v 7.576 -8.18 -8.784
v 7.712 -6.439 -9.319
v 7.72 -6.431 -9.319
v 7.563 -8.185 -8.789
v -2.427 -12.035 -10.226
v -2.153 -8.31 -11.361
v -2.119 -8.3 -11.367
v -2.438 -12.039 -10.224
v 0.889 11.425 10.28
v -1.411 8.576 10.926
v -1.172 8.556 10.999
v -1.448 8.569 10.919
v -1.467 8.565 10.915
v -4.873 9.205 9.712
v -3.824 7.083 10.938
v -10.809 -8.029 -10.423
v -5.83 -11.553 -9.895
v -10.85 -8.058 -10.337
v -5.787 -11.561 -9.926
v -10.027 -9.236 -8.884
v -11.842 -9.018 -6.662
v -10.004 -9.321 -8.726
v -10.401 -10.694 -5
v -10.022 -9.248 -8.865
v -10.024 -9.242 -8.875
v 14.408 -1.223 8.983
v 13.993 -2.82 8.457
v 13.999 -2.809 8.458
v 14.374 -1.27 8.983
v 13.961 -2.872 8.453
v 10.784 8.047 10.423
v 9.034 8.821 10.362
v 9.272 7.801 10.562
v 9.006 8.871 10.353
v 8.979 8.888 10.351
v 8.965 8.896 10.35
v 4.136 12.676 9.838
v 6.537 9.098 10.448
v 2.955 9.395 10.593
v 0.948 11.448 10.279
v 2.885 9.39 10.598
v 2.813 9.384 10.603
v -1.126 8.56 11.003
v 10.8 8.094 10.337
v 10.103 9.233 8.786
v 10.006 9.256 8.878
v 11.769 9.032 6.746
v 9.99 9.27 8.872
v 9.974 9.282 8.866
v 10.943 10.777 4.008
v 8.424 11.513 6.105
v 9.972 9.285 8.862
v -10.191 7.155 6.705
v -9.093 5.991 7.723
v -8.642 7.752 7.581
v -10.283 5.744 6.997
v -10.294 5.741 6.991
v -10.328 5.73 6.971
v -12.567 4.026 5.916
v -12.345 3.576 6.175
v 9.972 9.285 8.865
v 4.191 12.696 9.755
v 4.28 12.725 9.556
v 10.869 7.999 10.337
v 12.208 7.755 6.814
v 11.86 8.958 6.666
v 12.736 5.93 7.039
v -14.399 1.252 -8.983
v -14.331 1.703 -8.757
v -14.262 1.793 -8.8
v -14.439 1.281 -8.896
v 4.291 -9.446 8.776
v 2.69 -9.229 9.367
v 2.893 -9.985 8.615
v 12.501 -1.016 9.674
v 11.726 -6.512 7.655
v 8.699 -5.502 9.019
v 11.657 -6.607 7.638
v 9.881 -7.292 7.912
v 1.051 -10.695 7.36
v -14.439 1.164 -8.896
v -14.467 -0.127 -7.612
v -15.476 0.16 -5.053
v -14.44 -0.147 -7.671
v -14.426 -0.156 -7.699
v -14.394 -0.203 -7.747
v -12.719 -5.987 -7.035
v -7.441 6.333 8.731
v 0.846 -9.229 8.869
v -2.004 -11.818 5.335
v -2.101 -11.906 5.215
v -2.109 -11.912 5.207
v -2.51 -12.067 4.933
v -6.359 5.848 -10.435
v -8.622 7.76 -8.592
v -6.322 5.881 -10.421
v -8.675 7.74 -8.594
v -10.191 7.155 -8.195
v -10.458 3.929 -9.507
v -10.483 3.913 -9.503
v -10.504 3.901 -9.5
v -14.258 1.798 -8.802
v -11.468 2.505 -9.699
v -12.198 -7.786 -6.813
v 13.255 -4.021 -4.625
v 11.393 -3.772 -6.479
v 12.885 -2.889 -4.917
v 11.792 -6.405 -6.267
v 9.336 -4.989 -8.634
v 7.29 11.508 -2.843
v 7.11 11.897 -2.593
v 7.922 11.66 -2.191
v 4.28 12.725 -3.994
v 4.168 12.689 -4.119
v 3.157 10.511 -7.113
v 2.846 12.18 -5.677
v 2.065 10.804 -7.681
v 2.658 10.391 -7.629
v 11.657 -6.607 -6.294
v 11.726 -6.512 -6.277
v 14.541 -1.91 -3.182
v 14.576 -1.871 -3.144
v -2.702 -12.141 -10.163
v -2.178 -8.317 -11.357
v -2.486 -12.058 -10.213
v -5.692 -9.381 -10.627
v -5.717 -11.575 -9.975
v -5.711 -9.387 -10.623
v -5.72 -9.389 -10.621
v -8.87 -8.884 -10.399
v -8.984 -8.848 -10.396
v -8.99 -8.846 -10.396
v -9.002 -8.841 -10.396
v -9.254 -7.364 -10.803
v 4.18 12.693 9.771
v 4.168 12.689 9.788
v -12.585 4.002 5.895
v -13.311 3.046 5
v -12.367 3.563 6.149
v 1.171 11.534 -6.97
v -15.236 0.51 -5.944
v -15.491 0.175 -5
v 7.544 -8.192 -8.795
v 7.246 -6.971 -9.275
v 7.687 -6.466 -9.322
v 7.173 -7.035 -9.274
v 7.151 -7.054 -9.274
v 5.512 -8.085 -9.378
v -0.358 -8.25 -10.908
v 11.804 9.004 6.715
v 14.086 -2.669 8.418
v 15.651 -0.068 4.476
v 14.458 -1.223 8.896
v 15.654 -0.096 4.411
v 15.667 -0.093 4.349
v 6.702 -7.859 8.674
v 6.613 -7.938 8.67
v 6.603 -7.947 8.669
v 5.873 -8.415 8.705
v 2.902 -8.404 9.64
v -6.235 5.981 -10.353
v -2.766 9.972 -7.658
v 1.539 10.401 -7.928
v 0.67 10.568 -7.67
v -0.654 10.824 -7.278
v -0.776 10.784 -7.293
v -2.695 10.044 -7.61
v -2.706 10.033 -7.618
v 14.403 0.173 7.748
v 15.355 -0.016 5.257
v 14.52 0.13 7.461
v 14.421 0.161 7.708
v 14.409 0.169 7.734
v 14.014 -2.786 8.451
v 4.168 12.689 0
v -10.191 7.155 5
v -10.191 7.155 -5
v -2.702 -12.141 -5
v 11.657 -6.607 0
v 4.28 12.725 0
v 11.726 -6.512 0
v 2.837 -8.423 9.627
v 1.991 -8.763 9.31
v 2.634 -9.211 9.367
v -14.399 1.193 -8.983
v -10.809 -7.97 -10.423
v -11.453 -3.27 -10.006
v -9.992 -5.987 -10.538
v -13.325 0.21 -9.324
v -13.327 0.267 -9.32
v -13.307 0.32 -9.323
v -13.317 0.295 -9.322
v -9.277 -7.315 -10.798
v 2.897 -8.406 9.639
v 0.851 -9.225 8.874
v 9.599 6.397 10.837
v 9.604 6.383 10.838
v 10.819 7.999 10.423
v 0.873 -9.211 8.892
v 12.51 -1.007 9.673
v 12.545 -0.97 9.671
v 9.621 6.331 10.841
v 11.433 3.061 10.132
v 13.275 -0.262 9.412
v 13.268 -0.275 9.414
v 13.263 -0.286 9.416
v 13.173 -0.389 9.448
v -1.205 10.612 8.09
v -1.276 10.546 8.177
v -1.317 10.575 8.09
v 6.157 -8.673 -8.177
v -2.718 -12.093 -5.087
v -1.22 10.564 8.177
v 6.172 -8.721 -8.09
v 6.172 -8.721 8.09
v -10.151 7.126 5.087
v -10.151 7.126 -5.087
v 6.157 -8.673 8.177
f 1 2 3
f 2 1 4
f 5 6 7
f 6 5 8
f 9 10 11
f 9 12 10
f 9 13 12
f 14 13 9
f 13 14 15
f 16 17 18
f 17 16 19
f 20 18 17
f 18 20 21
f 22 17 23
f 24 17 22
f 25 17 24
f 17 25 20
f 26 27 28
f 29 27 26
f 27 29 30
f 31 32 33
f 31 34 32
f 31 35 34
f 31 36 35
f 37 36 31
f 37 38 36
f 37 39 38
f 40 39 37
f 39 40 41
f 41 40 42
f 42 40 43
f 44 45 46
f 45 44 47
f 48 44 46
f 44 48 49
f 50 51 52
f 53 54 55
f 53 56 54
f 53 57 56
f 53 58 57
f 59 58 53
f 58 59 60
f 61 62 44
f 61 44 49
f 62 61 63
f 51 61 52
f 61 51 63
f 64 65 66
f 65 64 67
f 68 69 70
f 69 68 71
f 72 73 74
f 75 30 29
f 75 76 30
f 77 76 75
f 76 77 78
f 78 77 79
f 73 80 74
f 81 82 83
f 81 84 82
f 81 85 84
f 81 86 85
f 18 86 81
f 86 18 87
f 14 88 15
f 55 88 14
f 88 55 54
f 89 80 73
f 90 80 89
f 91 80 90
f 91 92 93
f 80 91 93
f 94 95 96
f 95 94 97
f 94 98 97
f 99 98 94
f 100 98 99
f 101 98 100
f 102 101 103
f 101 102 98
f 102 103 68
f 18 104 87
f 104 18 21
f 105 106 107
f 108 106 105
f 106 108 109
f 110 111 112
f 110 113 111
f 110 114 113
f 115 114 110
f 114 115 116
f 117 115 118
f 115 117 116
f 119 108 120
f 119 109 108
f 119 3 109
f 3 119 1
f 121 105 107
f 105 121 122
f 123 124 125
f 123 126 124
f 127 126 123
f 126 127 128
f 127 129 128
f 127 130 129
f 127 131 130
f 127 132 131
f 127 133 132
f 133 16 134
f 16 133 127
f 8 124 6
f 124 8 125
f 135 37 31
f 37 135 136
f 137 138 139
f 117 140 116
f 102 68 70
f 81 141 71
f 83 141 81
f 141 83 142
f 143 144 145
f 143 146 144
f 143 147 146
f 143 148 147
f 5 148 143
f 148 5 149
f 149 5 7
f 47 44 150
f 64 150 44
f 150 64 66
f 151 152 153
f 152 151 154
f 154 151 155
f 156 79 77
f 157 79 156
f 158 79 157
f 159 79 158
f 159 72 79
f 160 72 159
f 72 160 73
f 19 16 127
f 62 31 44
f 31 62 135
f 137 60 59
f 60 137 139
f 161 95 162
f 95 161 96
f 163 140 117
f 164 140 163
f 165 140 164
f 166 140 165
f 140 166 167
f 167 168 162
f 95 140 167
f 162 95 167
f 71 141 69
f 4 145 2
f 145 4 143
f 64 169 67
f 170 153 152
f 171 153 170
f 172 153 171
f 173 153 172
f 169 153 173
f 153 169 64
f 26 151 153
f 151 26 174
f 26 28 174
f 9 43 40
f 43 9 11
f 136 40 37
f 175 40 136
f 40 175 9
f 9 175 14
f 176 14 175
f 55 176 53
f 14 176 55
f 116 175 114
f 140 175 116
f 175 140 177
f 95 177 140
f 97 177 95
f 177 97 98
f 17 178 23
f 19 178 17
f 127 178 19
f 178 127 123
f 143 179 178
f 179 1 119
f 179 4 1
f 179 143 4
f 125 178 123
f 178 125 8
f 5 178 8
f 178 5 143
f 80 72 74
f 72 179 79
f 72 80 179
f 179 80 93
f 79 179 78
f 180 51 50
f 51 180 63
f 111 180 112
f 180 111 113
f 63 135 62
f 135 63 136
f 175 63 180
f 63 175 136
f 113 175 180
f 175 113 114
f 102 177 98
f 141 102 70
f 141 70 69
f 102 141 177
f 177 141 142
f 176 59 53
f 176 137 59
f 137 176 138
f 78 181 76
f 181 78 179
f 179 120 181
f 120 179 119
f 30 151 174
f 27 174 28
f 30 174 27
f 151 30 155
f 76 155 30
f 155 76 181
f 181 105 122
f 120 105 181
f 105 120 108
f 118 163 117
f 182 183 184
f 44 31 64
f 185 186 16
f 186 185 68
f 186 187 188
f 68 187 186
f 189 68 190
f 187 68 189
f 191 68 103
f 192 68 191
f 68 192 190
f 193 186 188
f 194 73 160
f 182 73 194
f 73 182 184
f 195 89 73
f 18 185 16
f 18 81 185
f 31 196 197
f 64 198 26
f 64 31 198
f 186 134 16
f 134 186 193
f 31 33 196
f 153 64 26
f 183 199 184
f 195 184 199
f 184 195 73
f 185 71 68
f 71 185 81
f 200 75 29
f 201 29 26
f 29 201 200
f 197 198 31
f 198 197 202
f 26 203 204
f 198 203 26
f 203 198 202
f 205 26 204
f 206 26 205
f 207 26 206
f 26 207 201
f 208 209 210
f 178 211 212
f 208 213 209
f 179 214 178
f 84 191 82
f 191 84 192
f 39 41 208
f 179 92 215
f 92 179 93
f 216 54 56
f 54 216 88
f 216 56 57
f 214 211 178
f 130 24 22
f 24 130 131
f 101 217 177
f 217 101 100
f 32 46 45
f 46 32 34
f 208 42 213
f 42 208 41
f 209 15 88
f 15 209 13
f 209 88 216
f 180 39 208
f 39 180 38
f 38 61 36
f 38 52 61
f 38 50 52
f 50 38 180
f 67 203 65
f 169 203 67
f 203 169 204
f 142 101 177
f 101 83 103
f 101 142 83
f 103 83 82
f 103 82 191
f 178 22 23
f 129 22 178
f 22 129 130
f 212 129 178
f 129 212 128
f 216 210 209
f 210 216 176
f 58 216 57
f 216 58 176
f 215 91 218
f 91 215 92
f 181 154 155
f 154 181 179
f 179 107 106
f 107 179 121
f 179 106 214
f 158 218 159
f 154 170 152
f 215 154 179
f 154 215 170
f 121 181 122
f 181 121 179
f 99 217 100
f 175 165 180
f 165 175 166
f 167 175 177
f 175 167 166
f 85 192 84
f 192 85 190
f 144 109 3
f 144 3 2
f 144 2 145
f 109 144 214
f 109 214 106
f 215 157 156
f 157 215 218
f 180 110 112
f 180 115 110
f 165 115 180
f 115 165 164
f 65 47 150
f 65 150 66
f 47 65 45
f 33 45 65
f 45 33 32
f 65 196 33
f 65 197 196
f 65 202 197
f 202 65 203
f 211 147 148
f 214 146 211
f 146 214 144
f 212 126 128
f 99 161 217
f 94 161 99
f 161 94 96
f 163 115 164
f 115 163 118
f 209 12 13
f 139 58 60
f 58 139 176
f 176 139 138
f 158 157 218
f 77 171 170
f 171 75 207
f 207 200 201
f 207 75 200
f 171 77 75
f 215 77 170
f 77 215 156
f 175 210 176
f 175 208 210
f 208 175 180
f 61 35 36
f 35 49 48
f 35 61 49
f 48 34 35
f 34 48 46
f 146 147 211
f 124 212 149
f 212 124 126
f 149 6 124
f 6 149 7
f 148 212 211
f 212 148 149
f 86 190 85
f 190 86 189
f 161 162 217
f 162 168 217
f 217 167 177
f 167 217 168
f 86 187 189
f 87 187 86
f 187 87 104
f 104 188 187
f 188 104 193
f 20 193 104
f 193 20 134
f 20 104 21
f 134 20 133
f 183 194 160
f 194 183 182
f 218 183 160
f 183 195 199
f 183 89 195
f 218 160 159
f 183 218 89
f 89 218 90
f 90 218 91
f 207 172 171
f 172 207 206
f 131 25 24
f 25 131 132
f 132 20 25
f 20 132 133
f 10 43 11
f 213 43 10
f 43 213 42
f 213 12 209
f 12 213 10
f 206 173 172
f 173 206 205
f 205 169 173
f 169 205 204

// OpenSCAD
// Auto-generated OpenSCAD file

    inner_points = 10*[[-1.6157030013132576, -0.08682050620151305, 0.5000000000001401], [-1.256099372783235, -1.0199256612339145, 0.5000000000000209], [1.256099372783235, 1.0199256612339145, -0.5000000000000209], [1.6157030013132576, 0.08682050620151305, -0.5000000000001401], [-1.067237552347056, 0.12454920331922015, 1.3090169943750567], [-0.7076339238170337, -0.8085559517131813, 1.3090169943749375], [-1.615703001313349, -0.08682050620142057, -0.4999999999998599], [-1.2560993727833267, -1.019925661233822, -0.49999999999997924], [1.2560993727833267, 1.019925661233822, 0.49999999999997924], [1.615703001313349, 0.08682050620142057, 0.4999999999998599], [0.7076339238170337, 0.8085559517131813, -1.3090169943749375], [1.067237552347056, -0.12454920331922015, -1.3090169943750567], [-0.17980181426486283, 0.466552577516051, 1.6180339887499544], [0.17980181426515948, -0.46655257751635026, 1.6180339887498354], [-1.0672375523472961, 0.12454920331946218, -1.3090169943748382], [-0.7076339238172737, -0.808555951712939, -1.3090169943749572], [0.7076339238172737, 0.808555951712939, 1.3090169943749572], [1.0672375523472961, -0.12454920331946218, 1.3090169943748382], [-0.17980181426515948, 0.46655257751635026, -1.6180339887498354], [0.17980181426486283, -0.466552577516051, -1.6180339887499544], [-1.0110111624566542, 0.7096390219731582, 0.5000000000001583], [-0.273297902828303, -1.2045909548178053, 0.4999999999999137], [0.4248900245915921, 1.2630121056908719, 7.782663402622347e-14], [1.1626032842199434, -0.6512178711000915, -1.6681100944992977e-13], [-1.011011162456746, 0.7096390219732508, -0.4999999999998417], [-0.2732979028283946, -1.2045909548177127, -0.5000000000000864], [-0.1235754243746093, 1.0516423961701389, -0.8090169943748389], [0.6141378352537419, -0.8625875806208246, -0.8090169943750836], [-0.12357542437446101, 1.0516423961699892, 0.809016994375056], [0.6141378352538901, -0.8625875806209743, 0.8090169943748112]];

    outer_points = 10*[[1.4358365361613323, -0.12226738097965391, 0.8896393188941789], [1.6884671298168779, 0.12226738097965391, -0.04651266307389418], [-1.6884671298168779, -0.12226738097965391, 0.04651266307389418], [-1.4358365361613323, 0.12226738097965391, -0.8896393188941789], [1.076899131358998, 0.7999155599973826, 1.0336621046077892], [1.3295297250145435, 1.0444503219566905, 0.09751012263971623], [1.1980850363497777, -1.0444503219566905, 0.5845936703294112], [1.4507156300053232, -0.7999155599973826, -0.35155831163866175], [-1.4507156300053232, 0.7999155599973826, 0.35155831163866175], [-1.1980850363497777, 1.0444503219566905, -0.5845936703294112], [-1.3295297250145435, -1.0444503219566905, -0.09751012263971623], [-1.076899131358998, -0.7999155599973826, -1.0336621046077892], [0.2583747107435867, 1.3698559613665295, 0.9616502184820862], [0.5110053043991324, 1.6143907233258374, 0.025498236514013117], [0.4544576239760838, -1.6143907233258374, 0.23504222854497203], [0.7070882176316295, -1.3698559613665295, -0.7011097534231011], [-0.7070882176316295, 1.3698559613665295, 0.7011097534231011], [-0.4544576239760838, 1.6143907233258374, -0.23504222854497203], [-0.5110053043991324, -1.6143907233258374, -0.025498236514013117], [-0.2583747107435867, -1.3698559613665295, -0.9616502184820862], [0.5051973765349485, 0.004058182780676878, 1.233081608821516], [1.023459496106188, 0.5057120094532936, -0.6873988183317695], [-1.0569544564541566, 0.004058182780676878, 0.8115182809113736], [-0.538692336882917, 0.5057120094532936, -1.108962146241912], [0.2674458767233939, -0.9181247581963599, 0.9280359602567483], [0.7857079962946336, -0.416470931523743, -0.9924444668965372], [-0.6980170516518223, -0.9181247581963599, 0.6674954951977632], [-0.17975493208058263, -0.416470931523743, -1.2529849319555224], [-0.3133270440804627, 0.5739985841498236, 1.1610697226958127], [0.2049350754907769, 1.0756524108224406, -0.7594107044574727]];

    // Convex hull for inner set (I)
    module inner_hull() {
        hull() {
            for (p = inner_points) {
                translate(p) sphere(r=0.1);
            }
        }
    }

    // Convex hull for outer set (O) minus inner hull (O \ I)
    module outer_minus_inner() {
        difference() {
            hull() {
                for (p = outer_points) {
                    translate(p) sphere(r=0.1);
                }
            }
            inner_hull(); // Subtract inner hull
        }
    }

    // Convex hull for outer set (O) minus all translated inner hulls
    module outer_minus_AllTranslationInner() {
        difference() {
            hull() {
                for (p = outer_points) {
                    translate(p) sphere(r=0.1);
                }
            }
            hull() {
                translate([0,0,50]) inner_hull();
                translate([0,0,-50]) inner_hull();
            }; // Subtract translated inner hulls
        }
    }

    // Difference between outer_minus_inner and outer_minus_AllTranslationInner
    module outer_minus_inner_diff() {
        difference() {
            // Outer minus inner
            difference() {
                hull() {
                    for (p = outer_points) {
                        translate(p) sphere(r=0.1);
                    }
                }
                inner_hull();
            }

            // Subtract Outer minus AllTranslationInner
            difference() {
                hull() {
                    for (p = outer_points) {
                        translate(p) sphere(r=0.1);
                    }
                }
                hull() {
                    translate([0,0,50]) inner_hull();
                    translate([0,0,-50]) inner_hull();
                };
            }
        }
    }

    // Rendering all with colors applied
    color([1, 1, 0, 1]) outer_minus_inner_diff(); // Opaque yellow
    
